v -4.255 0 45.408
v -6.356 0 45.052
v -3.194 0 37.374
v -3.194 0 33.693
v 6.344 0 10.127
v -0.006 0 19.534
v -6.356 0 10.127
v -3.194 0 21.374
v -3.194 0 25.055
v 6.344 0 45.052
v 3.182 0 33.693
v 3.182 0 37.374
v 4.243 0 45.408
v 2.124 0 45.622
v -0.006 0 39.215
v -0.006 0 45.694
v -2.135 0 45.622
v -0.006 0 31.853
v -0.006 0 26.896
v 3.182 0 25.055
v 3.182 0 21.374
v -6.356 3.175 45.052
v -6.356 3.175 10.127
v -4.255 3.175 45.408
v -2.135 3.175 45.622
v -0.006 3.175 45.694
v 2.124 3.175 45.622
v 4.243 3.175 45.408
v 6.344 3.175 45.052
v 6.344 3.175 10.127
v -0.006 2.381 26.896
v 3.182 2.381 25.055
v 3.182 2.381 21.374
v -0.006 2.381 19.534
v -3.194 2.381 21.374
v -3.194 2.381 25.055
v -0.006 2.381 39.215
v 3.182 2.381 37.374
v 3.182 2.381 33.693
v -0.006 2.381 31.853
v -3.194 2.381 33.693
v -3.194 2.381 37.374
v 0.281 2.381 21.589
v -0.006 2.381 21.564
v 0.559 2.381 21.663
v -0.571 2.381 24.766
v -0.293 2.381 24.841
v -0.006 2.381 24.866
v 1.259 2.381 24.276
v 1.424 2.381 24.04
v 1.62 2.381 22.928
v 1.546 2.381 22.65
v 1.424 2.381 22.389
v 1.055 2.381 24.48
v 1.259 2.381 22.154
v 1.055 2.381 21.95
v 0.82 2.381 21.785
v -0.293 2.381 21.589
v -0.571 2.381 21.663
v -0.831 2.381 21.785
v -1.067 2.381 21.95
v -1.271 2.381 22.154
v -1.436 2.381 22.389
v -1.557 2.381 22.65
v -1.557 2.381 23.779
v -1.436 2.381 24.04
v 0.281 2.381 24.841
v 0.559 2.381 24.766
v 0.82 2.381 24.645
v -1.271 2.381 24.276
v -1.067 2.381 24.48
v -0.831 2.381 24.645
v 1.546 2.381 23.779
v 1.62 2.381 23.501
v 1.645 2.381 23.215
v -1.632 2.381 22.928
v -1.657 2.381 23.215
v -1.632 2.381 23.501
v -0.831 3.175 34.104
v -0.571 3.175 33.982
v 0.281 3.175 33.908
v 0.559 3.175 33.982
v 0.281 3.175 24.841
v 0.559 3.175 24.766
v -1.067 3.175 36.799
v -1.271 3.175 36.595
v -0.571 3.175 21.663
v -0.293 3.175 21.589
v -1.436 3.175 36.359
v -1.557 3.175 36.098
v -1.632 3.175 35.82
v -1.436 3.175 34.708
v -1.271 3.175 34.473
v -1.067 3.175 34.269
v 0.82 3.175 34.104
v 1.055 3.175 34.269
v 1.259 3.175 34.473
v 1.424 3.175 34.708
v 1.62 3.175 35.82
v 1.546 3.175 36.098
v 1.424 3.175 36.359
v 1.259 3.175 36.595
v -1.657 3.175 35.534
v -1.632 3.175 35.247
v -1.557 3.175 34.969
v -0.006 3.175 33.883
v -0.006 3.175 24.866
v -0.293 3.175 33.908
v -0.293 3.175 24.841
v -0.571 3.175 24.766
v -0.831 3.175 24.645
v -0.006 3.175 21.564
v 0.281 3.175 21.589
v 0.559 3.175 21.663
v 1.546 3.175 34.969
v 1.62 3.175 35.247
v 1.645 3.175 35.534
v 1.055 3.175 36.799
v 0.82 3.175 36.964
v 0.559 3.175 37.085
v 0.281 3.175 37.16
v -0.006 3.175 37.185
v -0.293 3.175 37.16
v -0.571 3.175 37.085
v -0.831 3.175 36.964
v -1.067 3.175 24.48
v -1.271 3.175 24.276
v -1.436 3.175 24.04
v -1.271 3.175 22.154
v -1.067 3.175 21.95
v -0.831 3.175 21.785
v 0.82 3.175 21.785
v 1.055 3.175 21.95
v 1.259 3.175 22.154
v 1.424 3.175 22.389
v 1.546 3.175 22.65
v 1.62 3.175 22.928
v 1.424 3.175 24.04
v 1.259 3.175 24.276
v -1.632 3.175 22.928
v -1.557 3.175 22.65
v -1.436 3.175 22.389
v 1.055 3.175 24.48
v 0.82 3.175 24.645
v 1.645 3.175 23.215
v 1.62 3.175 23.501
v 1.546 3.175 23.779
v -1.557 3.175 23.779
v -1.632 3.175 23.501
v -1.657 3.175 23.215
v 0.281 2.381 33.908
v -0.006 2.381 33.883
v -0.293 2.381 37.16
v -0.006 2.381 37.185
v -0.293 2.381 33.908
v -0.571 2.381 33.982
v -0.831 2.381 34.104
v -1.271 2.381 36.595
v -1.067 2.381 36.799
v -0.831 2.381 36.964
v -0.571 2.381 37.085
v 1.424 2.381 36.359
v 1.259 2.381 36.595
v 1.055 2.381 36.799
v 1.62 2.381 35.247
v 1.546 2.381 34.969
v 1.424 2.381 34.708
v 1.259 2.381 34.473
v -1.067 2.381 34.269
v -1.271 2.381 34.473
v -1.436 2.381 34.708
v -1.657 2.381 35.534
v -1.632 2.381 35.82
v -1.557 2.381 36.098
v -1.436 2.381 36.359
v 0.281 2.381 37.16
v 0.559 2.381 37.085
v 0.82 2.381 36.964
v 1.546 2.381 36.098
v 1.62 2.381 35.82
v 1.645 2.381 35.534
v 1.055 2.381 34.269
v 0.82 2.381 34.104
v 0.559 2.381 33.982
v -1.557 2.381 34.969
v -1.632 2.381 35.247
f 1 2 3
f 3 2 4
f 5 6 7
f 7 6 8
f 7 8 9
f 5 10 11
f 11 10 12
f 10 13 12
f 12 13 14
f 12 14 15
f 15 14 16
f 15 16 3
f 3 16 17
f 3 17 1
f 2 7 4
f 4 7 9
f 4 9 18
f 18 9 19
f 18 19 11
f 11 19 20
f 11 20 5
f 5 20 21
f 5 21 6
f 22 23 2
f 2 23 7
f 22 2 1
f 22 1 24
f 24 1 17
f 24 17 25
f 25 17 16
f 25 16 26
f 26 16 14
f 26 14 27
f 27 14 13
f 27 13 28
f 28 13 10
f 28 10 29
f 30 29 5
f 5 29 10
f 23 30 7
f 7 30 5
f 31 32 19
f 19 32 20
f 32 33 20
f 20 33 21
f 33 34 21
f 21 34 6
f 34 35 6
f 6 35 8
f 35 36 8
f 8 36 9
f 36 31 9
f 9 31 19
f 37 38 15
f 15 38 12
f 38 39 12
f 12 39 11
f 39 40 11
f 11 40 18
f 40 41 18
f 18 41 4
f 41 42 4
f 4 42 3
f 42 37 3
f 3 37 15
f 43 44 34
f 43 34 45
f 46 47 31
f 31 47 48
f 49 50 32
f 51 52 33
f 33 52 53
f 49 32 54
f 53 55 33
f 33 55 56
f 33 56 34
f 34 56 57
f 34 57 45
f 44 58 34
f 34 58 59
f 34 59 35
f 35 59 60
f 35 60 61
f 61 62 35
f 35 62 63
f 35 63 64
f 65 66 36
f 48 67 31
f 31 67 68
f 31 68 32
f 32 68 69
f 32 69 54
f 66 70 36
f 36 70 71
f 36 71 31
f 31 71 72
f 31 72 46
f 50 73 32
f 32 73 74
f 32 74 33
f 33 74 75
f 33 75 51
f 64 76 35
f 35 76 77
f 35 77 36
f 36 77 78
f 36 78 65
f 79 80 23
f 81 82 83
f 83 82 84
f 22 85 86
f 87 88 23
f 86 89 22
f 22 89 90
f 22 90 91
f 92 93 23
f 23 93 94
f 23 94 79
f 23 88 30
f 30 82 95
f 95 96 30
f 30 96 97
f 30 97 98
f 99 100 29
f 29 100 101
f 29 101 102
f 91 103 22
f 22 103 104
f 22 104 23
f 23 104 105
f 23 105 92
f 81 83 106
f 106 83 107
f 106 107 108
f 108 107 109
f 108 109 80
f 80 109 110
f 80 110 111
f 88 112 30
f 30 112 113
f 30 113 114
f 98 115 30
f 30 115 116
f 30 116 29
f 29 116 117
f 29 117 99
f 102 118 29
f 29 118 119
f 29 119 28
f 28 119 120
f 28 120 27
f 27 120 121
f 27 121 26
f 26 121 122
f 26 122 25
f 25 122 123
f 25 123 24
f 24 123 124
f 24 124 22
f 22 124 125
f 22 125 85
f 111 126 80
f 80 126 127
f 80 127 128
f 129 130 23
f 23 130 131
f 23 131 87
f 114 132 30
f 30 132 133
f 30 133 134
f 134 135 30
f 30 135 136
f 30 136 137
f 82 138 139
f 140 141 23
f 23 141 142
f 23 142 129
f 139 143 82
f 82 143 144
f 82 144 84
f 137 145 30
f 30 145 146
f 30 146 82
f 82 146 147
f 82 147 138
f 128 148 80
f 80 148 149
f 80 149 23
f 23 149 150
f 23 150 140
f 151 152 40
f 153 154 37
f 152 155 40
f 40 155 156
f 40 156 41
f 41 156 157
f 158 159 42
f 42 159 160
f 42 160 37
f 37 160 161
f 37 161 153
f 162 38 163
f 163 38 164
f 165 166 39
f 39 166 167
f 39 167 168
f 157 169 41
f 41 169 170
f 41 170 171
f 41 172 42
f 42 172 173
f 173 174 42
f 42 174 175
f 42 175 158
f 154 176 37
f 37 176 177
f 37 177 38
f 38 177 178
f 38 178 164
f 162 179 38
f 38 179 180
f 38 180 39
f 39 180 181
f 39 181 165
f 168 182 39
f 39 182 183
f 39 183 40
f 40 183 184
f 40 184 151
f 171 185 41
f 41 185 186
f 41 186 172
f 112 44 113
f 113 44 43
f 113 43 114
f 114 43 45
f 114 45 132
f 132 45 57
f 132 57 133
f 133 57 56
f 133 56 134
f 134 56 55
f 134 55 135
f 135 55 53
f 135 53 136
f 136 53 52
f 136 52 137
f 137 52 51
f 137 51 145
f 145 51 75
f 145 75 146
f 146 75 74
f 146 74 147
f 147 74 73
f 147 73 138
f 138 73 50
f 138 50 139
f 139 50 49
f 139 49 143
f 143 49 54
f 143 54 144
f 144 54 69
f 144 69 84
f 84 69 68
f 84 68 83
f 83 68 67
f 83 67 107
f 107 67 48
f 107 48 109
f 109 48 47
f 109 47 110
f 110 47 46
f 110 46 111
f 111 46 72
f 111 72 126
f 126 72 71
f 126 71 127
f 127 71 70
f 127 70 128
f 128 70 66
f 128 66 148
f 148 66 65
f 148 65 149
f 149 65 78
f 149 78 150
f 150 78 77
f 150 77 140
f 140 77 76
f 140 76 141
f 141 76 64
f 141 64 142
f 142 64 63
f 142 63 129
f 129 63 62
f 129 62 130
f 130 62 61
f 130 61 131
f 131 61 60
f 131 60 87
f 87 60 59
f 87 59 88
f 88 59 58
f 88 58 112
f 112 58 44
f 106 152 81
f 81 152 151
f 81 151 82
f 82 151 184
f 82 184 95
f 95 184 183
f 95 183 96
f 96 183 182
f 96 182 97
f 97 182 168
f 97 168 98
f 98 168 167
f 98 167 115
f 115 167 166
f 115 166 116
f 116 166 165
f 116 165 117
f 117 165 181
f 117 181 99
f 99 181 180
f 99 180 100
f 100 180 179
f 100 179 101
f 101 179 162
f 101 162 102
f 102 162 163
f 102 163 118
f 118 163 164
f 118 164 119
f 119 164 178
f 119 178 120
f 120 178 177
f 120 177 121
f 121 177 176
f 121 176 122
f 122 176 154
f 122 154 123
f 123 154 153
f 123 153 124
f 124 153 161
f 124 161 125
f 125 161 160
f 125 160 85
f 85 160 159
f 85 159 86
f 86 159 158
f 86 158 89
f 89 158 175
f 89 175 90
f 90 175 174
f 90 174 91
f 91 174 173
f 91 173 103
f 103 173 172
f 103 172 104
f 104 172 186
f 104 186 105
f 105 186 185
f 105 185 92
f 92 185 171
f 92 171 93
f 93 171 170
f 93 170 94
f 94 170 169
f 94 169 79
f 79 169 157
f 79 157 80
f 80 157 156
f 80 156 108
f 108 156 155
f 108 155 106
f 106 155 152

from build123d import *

# Parameters (mm, degrees)
BOSS_EXTRUDE1_DEPTH = 2.38125
SKETCH2_R           = 1.651
BOSS_EXTRUDE2_DEPTH = 0.79375


with BuildPart() as part:
    # Sketch1 → Boss-Extrude1 (new body)
    with BuildSketch(Plane(origin=(0, 0, 0), x_dir=(1, 0, 0), z_dir=(0, 1, 0))):
        with BuildLine():
            Line((-6.355837102, -10.127283918), (6.344162898, -10.127283918))
            Line((6.344162898, -10.127283918), (6.344162898, -45.052283918))
            ThreePointArc((6.344162898, -45.052283918), (-0.005837102, -45.693764185), (-6.355837102, -45.052283918))
            Line((-6.355837102, -45.052283918), (-6.355837102, -10.127283918))
        make_face()
        Polygon((3.181862898, -25.055183638), (3.181862898, -21.374344732), (-0.005837102, -19.533925278), (-3.193537102, -21.374344732), (-3.193537102, -25.055183638), (-0.005837102, -26.895603091), align=None, mode=Mode.SUBTRACT)
        Polygon((3.181862898, -37.374183638), (3.181862898, -33.693344732), (-0.005837102, -31.852925278), (-3.193537102, -33.693344732), (-3.193537102, -37.374183638), (-0.005837102, -39.214603091), align=None, mode=Mode.SUBTRACT)
    extrude(amount=BOSS_EXTRUDE1_DEPTH)

    # Sketch2 → Boss-Extrude2 (add)
    with BuildSketch(Plane(origin=(0, 2.38125, 0), x_dir=(1, 0, 0), z_dir=(0, 1, 0))):
        with BuildLine():
            Line((6.344162898, -45.052283918), (6.344162898, -10.127283918))
            Line((6.344162898, -10.127283918), (-6.355837102, -10.127283918))
            Line((-6.355837102, -10.127283918), (-6.355837102, -45.052283918))
            ThreePointArc((-6.355837102, -45.052283918), (-0.005837102, -45.693764185), (6.344162898, -45.052283918))
        make_face()
        with Locations((-0.005837102, -23.214764185)):
            Circle(SKETCH2_R, mode=Mode.SUBTRACT)
        with Locations((-0.005837102, -35.533764185)):
            Circle(SKETCH2_R, mode=Mode.SUBTRACT)
    extrude(amount=BOSS_EXTRUDE2_DEPTH)


solid = part.part
